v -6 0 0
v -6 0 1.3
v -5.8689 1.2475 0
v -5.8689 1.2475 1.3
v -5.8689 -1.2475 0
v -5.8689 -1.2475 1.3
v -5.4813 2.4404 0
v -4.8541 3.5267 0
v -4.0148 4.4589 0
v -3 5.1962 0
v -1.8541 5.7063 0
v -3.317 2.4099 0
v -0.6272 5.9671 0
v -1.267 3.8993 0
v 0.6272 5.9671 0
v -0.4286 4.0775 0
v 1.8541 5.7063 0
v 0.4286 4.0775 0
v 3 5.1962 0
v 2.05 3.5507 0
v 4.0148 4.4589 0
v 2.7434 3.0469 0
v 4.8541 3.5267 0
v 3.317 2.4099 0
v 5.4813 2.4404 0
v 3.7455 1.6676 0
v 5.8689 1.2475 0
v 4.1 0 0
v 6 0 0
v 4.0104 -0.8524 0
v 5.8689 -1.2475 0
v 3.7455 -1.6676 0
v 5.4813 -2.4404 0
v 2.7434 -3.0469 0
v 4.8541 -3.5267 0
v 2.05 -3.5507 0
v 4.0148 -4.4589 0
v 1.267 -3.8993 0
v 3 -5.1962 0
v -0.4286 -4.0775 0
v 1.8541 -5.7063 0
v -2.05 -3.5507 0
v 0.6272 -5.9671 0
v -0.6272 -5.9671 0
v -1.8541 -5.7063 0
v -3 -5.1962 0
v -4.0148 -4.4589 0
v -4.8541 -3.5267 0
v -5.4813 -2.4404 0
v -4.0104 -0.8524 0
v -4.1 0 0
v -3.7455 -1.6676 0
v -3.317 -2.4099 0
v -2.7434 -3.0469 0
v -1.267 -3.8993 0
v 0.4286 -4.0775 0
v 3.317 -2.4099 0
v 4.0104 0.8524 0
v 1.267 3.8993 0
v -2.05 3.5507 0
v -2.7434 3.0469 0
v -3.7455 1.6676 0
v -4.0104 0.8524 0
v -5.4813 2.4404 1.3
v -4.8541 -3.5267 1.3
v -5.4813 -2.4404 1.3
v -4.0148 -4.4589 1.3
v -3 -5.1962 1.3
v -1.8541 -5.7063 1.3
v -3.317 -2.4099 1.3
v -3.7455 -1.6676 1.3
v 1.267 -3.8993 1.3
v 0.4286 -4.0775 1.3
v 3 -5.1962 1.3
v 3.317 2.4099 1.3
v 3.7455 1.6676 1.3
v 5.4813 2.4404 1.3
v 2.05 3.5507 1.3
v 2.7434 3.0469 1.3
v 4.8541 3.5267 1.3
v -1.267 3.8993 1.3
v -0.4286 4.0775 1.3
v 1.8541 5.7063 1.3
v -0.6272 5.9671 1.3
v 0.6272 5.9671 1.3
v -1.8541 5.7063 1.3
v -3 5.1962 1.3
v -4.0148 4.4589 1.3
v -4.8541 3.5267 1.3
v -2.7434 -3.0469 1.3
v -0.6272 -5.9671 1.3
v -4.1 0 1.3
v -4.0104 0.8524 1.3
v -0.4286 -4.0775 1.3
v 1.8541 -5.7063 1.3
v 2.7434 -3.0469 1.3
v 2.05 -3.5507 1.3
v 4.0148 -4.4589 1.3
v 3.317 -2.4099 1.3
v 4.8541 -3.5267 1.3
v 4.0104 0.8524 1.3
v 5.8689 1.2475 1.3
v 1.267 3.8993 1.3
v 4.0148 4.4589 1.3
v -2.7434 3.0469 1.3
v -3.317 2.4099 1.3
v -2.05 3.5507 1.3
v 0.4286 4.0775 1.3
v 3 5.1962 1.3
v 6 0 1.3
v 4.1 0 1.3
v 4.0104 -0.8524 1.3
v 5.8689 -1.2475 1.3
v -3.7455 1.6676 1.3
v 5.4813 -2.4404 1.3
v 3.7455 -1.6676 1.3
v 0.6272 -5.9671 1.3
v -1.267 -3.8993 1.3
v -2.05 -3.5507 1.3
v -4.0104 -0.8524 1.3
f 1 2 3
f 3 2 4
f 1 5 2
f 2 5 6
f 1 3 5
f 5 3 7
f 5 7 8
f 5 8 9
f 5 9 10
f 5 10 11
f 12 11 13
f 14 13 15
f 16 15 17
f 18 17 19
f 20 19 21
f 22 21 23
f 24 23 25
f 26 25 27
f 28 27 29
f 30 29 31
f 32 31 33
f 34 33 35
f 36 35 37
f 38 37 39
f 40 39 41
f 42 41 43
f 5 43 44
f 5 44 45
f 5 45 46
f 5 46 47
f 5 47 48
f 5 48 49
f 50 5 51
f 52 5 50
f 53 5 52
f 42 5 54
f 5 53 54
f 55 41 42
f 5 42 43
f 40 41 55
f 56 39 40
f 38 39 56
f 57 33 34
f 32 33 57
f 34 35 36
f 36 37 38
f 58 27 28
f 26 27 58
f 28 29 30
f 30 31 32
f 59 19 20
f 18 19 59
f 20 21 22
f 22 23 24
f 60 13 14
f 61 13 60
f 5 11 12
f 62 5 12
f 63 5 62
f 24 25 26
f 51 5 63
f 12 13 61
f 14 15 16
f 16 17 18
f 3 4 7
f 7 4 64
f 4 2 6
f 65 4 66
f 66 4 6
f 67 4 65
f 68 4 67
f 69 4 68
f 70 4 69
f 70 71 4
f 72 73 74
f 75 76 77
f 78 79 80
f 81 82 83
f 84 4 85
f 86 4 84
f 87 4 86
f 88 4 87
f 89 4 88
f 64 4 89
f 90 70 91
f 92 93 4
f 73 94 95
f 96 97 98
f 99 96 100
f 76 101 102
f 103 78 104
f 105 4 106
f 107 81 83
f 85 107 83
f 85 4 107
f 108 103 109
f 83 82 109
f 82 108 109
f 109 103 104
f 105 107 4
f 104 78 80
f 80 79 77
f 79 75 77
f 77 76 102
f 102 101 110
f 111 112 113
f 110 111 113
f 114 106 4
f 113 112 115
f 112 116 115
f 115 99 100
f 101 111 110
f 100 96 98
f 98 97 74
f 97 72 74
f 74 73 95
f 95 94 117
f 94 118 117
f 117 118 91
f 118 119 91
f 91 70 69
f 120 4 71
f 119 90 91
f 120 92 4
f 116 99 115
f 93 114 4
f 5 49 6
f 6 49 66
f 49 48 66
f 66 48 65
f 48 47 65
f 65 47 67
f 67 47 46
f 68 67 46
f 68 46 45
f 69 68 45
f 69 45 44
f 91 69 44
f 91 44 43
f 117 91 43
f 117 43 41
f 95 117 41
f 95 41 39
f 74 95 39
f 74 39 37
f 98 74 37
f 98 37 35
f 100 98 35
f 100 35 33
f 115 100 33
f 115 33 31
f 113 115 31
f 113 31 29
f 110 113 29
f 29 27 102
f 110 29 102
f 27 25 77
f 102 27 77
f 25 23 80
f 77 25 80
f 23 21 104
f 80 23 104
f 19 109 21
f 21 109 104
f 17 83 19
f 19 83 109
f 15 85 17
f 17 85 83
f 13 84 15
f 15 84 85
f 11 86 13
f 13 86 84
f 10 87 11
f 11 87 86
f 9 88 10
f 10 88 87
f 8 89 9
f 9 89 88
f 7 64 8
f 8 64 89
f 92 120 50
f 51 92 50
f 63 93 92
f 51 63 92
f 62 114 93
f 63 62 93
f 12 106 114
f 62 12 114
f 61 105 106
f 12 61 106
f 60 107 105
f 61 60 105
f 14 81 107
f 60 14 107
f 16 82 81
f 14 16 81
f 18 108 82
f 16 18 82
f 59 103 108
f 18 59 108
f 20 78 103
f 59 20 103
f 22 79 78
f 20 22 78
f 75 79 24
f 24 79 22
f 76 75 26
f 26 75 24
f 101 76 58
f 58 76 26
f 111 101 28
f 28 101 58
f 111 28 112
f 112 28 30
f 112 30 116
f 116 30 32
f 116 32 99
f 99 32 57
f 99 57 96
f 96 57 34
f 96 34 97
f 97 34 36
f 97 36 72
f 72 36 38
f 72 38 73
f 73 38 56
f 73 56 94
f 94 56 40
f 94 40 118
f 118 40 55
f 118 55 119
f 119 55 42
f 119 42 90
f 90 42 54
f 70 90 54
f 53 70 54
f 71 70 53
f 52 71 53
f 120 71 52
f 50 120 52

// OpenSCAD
height = 1.3;
difference(){
cylinder(r=12/2,h=height,$fn=30);
cylinder(r=8.2/2,h=height,$fn=30);
}
